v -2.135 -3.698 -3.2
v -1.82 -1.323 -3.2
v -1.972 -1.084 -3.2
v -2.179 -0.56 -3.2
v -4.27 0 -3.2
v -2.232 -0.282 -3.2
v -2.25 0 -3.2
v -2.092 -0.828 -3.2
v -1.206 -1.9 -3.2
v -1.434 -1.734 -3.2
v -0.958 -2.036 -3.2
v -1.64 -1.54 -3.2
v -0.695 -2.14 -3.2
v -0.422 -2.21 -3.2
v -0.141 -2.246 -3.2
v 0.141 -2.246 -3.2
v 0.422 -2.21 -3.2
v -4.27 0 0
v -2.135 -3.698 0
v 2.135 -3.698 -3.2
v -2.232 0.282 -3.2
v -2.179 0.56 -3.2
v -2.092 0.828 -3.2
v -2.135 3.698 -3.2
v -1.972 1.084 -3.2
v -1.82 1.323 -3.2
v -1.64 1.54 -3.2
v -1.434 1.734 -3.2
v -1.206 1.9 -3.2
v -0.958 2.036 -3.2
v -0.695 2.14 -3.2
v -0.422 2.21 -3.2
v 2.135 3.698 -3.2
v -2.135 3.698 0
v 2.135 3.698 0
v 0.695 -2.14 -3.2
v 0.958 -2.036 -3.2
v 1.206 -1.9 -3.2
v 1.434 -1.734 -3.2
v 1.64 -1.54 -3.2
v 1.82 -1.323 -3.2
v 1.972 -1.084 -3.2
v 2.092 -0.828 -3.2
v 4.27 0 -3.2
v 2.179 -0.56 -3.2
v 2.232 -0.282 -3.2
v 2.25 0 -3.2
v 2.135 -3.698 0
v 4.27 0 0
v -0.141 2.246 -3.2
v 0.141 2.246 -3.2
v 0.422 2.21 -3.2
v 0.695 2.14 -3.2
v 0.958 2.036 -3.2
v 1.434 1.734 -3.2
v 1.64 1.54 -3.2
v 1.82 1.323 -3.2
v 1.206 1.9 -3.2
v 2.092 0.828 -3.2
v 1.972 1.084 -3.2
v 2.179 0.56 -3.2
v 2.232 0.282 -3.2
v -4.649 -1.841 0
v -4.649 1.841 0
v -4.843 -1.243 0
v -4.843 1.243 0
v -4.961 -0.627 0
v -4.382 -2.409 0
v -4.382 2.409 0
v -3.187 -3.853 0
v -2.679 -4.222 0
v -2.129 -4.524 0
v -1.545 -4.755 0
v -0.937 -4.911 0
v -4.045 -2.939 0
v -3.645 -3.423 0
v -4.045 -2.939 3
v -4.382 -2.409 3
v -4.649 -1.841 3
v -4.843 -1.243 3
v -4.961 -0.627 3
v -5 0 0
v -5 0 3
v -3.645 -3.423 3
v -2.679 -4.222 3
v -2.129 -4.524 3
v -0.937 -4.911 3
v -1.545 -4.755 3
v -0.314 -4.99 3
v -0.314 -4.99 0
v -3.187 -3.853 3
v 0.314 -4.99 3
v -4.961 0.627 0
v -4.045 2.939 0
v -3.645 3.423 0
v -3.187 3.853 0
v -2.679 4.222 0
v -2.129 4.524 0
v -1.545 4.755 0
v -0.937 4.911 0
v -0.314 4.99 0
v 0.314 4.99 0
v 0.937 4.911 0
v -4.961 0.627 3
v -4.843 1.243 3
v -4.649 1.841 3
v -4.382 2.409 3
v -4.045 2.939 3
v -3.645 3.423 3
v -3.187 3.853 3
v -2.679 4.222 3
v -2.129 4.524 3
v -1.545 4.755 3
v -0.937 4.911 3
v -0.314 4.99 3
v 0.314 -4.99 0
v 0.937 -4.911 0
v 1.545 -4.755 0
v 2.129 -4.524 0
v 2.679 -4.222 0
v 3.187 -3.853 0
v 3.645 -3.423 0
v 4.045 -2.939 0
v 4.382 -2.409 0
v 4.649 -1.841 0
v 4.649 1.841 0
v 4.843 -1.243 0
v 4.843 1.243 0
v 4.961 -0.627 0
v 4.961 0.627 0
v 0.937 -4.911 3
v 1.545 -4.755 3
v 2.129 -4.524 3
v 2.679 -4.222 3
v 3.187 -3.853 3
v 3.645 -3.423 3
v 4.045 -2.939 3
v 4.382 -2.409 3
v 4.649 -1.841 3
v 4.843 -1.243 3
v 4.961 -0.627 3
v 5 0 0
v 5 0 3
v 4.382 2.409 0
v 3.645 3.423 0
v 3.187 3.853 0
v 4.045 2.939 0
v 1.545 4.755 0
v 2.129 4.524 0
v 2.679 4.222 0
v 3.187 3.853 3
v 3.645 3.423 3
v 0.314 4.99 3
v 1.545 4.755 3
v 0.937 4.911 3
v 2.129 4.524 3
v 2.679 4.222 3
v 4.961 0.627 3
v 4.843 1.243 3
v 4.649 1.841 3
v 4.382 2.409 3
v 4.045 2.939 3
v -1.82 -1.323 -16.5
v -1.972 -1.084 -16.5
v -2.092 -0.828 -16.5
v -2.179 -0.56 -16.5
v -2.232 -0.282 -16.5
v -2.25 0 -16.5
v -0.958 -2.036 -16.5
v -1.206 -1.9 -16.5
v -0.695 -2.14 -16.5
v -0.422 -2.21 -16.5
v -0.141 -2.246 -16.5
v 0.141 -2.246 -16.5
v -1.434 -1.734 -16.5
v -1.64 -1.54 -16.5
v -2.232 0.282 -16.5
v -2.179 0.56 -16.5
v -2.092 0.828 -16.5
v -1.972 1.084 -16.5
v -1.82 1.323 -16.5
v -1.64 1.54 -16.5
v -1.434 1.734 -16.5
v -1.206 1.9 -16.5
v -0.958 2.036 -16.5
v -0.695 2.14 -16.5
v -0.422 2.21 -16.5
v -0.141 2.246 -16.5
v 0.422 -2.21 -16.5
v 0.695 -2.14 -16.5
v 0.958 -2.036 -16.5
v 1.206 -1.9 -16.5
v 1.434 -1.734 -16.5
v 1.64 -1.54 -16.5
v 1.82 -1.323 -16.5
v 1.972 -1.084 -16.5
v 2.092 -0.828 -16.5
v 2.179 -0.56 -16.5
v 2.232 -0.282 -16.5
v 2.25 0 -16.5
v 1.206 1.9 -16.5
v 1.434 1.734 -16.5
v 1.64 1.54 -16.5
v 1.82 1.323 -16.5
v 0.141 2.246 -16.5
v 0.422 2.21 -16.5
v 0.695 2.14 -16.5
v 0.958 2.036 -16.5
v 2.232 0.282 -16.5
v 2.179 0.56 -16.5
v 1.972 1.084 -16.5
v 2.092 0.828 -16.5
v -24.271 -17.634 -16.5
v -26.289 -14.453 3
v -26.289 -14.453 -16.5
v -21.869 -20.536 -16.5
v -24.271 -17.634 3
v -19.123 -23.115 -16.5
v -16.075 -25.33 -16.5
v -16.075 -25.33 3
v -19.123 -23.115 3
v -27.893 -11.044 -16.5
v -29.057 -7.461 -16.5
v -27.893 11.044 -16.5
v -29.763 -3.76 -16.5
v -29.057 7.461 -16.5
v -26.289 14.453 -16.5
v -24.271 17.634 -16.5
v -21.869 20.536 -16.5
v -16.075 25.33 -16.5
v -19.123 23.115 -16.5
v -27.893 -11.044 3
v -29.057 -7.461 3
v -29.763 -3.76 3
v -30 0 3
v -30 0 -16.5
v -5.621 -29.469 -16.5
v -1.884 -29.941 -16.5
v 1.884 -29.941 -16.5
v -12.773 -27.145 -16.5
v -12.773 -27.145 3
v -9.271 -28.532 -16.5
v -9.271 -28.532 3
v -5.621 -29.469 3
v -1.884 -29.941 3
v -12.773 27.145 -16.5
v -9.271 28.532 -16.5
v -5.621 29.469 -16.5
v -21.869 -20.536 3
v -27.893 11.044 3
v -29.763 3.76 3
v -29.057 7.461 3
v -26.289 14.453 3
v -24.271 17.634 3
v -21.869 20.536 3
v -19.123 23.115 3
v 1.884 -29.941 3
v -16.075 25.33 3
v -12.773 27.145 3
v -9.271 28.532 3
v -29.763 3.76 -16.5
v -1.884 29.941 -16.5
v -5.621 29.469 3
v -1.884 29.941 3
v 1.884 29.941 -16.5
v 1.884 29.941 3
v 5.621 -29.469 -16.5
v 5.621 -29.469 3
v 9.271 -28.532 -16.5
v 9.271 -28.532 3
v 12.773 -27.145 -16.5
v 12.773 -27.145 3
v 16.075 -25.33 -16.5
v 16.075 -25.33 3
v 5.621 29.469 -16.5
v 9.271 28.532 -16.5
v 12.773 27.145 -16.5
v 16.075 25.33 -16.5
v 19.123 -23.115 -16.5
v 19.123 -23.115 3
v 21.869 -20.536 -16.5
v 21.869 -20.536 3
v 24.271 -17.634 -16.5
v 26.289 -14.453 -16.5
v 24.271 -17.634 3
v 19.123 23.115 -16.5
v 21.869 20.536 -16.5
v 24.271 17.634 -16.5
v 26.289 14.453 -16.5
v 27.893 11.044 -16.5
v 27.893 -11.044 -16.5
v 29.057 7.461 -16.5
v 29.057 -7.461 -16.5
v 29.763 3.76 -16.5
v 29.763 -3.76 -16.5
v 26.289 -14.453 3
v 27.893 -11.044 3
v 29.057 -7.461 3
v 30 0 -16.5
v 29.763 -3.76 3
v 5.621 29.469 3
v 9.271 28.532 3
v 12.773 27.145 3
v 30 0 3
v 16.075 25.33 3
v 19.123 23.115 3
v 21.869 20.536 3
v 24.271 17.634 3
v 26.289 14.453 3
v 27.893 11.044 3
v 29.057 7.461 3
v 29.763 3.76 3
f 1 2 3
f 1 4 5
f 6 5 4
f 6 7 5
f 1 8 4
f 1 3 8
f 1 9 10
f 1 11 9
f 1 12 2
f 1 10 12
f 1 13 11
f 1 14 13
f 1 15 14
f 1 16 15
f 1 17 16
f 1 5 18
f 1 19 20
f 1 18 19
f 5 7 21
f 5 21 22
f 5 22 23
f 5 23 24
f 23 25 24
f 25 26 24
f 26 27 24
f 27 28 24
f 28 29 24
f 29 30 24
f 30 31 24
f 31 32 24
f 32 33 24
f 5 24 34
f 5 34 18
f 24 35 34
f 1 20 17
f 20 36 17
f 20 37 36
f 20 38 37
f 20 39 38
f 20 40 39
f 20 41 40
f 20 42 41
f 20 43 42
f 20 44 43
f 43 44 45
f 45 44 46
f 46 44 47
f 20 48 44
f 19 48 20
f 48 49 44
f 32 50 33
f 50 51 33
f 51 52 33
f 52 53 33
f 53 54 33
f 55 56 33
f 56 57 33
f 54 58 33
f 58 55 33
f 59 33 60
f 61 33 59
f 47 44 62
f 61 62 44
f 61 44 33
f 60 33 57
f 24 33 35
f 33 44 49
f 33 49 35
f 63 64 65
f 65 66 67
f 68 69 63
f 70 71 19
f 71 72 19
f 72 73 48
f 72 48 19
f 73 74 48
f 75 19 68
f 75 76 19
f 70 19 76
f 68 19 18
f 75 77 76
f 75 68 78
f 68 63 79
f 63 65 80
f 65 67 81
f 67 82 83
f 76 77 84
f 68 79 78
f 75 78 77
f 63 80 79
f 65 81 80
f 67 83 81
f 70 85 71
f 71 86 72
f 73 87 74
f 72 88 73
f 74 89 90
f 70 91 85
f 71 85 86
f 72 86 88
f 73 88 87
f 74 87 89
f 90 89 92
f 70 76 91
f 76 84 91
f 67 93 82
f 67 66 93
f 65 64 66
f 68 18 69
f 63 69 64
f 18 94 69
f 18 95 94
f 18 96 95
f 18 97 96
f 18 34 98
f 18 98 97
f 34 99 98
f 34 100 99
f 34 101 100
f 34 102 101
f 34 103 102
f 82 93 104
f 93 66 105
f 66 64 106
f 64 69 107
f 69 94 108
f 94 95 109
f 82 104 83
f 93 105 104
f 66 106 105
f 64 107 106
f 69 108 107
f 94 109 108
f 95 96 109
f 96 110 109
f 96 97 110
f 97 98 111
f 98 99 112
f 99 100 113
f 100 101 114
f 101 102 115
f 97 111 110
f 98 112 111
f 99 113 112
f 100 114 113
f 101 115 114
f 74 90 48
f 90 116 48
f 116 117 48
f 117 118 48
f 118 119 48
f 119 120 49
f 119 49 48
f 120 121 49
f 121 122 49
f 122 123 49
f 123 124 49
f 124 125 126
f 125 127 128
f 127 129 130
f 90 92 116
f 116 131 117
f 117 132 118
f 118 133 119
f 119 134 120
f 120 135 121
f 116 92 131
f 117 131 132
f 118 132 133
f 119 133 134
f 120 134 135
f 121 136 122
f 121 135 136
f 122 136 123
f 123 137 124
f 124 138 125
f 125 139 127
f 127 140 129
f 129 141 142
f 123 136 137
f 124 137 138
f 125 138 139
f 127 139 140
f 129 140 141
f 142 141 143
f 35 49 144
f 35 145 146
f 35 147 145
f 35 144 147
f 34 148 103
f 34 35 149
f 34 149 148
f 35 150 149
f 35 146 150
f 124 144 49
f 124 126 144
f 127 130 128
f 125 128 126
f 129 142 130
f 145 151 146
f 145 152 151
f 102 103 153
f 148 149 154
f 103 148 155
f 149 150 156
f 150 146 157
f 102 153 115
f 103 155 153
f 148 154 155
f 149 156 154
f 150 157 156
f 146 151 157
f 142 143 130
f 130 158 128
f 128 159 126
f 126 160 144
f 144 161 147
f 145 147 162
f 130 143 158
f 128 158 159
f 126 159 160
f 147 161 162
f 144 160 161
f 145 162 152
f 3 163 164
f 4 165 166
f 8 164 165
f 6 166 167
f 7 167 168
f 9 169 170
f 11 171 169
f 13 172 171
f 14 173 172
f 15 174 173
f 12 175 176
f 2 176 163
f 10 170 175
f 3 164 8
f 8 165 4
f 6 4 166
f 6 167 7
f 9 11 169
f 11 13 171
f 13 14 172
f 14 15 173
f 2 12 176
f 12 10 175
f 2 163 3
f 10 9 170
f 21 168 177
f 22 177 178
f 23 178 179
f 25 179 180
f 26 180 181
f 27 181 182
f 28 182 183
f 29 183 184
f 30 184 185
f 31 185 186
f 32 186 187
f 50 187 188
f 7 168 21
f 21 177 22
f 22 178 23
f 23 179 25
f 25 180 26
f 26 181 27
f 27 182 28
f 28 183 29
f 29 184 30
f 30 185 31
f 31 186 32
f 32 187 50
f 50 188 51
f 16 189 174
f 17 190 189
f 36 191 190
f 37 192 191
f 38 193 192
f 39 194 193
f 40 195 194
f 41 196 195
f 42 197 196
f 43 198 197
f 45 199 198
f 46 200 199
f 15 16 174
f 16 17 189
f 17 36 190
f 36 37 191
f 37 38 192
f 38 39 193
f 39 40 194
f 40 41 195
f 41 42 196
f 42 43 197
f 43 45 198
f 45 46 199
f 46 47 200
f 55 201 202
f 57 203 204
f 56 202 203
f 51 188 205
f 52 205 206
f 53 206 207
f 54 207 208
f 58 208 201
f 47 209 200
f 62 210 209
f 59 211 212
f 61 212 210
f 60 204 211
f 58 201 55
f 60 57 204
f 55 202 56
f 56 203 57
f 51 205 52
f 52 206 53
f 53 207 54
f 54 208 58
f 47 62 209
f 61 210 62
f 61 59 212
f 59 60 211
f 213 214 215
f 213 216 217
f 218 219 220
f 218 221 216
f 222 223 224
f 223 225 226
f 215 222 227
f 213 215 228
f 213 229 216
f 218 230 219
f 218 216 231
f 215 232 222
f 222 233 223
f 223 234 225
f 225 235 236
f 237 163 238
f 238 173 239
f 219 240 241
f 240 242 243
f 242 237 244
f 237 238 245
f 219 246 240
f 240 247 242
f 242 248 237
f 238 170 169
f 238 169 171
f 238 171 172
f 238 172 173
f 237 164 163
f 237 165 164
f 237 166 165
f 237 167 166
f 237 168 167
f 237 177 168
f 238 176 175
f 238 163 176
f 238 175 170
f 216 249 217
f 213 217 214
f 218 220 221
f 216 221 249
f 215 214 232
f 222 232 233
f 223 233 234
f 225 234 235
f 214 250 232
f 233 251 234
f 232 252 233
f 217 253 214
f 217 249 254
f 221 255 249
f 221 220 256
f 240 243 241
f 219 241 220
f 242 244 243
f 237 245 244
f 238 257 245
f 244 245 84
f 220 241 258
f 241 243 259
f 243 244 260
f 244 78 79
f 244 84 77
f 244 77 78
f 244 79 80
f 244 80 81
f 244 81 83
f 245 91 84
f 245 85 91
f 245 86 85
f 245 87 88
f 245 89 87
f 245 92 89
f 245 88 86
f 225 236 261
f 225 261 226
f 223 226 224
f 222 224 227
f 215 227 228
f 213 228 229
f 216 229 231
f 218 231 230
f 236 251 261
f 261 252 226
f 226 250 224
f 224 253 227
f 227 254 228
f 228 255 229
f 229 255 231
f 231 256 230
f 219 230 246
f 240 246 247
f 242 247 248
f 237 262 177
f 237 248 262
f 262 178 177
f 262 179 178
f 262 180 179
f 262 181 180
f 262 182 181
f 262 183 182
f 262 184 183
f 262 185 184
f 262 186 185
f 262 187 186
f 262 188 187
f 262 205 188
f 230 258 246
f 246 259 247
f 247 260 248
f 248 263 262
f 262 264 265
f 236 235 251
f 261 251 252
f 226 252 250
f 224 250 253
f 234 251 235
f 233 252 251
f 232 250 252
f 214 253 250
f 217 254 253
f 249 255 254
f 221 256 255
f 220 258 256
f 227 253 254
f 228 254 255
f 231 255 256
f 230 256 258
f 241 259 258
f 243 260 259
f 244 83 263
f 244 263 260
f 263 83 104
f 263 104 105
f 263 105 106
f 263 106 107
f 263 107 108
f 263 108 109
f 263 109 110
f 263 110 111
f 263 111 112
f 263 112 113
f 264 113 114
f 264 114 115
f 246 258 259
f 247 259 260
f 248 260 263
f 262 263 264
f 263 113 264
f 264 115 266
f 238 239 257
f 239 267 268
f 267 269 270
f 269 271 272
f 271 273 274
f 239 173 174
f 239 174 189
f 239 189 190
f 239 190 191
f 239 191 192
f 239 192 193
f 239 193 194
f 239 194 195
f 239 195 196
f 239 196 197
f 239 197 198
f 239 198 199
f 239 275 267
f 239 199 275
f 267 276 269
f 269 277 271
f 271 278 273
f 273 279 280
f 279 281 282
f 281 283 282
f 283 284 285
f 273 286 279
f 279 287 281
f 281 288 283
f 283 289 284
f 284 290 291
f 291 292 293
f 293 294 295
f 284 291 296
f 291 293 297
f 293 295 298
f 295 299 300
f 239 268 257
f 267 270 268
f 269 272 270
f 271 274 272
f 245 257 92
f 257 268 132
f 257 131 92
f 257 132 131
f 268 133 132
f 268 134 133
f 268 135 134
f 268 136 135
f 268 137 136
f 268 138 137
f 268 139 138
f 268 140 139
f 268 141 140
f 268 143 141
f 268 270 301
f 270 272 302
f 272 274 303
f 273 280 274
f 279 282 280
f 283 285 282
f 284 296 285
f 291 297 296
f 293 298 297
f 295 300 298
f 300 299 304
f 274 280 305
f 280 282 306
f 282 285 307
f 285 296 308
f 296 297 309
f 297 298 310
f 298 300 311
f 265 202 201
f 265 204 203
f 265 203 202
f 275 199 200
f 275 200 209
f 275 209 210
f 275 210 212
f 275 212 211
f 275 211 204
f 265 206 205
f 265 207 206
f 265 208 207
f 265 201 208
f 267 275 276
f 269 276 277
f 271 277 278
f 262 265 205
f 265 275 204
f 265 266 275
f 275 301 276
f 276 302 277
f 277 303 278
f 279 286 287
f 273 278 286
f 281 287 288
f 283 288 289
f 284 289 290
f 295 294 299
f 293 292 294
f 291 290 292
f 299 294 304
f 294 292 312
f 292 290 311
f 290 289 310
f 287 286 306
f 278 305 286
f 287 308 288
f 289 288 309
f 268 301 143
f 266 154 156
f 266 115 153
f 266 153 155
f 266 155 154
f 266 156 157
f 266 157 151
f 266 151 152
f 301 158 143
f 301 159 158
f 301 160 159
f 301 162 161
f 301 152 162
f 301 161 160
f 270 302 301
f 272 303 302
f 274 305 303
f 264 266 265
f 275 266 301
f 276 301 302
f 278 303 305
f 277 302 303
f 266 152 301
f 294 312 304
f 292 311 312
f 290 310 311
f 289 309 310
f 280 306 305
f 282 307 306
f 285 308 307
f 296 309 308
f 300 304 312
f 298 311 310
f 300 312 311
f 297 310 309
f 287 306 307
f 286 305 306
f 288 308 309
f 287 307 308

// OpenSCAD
$fn = 50;

difference() {
	union() {
		translate(v = [0, 0, -16.5]) {
			cylinder(h = 19.5, r = 30.0);
		}
	}
	union() {
		translate(v = [0, 0, 0]) {
			rotate(a = [0, 0, 0]) {
				difference() {
					union() {
						translate(v = [0, 0, -3.2]) {
							linear_extrude(height = 3.2) {
								polygon(points = [[4.2698, 0.0], [2.1349000000000005, 3.697755269078796], [-2.134899999999999, 3.6977552690787965], [-4.2698, 5.228996902999369e-16], [-2.134900000000002, -3.6977552690787956], [2.1348999999999974, -3.697755269078798]]);
							}
						}
					}
					union();
				}
			}
		}
		#cylinder(h = 3, r = 5.0);
		#translate(v = [0, 0, -100.0]) {
			cylinder(h = 200, r = 2.25);
		}
	}
}
